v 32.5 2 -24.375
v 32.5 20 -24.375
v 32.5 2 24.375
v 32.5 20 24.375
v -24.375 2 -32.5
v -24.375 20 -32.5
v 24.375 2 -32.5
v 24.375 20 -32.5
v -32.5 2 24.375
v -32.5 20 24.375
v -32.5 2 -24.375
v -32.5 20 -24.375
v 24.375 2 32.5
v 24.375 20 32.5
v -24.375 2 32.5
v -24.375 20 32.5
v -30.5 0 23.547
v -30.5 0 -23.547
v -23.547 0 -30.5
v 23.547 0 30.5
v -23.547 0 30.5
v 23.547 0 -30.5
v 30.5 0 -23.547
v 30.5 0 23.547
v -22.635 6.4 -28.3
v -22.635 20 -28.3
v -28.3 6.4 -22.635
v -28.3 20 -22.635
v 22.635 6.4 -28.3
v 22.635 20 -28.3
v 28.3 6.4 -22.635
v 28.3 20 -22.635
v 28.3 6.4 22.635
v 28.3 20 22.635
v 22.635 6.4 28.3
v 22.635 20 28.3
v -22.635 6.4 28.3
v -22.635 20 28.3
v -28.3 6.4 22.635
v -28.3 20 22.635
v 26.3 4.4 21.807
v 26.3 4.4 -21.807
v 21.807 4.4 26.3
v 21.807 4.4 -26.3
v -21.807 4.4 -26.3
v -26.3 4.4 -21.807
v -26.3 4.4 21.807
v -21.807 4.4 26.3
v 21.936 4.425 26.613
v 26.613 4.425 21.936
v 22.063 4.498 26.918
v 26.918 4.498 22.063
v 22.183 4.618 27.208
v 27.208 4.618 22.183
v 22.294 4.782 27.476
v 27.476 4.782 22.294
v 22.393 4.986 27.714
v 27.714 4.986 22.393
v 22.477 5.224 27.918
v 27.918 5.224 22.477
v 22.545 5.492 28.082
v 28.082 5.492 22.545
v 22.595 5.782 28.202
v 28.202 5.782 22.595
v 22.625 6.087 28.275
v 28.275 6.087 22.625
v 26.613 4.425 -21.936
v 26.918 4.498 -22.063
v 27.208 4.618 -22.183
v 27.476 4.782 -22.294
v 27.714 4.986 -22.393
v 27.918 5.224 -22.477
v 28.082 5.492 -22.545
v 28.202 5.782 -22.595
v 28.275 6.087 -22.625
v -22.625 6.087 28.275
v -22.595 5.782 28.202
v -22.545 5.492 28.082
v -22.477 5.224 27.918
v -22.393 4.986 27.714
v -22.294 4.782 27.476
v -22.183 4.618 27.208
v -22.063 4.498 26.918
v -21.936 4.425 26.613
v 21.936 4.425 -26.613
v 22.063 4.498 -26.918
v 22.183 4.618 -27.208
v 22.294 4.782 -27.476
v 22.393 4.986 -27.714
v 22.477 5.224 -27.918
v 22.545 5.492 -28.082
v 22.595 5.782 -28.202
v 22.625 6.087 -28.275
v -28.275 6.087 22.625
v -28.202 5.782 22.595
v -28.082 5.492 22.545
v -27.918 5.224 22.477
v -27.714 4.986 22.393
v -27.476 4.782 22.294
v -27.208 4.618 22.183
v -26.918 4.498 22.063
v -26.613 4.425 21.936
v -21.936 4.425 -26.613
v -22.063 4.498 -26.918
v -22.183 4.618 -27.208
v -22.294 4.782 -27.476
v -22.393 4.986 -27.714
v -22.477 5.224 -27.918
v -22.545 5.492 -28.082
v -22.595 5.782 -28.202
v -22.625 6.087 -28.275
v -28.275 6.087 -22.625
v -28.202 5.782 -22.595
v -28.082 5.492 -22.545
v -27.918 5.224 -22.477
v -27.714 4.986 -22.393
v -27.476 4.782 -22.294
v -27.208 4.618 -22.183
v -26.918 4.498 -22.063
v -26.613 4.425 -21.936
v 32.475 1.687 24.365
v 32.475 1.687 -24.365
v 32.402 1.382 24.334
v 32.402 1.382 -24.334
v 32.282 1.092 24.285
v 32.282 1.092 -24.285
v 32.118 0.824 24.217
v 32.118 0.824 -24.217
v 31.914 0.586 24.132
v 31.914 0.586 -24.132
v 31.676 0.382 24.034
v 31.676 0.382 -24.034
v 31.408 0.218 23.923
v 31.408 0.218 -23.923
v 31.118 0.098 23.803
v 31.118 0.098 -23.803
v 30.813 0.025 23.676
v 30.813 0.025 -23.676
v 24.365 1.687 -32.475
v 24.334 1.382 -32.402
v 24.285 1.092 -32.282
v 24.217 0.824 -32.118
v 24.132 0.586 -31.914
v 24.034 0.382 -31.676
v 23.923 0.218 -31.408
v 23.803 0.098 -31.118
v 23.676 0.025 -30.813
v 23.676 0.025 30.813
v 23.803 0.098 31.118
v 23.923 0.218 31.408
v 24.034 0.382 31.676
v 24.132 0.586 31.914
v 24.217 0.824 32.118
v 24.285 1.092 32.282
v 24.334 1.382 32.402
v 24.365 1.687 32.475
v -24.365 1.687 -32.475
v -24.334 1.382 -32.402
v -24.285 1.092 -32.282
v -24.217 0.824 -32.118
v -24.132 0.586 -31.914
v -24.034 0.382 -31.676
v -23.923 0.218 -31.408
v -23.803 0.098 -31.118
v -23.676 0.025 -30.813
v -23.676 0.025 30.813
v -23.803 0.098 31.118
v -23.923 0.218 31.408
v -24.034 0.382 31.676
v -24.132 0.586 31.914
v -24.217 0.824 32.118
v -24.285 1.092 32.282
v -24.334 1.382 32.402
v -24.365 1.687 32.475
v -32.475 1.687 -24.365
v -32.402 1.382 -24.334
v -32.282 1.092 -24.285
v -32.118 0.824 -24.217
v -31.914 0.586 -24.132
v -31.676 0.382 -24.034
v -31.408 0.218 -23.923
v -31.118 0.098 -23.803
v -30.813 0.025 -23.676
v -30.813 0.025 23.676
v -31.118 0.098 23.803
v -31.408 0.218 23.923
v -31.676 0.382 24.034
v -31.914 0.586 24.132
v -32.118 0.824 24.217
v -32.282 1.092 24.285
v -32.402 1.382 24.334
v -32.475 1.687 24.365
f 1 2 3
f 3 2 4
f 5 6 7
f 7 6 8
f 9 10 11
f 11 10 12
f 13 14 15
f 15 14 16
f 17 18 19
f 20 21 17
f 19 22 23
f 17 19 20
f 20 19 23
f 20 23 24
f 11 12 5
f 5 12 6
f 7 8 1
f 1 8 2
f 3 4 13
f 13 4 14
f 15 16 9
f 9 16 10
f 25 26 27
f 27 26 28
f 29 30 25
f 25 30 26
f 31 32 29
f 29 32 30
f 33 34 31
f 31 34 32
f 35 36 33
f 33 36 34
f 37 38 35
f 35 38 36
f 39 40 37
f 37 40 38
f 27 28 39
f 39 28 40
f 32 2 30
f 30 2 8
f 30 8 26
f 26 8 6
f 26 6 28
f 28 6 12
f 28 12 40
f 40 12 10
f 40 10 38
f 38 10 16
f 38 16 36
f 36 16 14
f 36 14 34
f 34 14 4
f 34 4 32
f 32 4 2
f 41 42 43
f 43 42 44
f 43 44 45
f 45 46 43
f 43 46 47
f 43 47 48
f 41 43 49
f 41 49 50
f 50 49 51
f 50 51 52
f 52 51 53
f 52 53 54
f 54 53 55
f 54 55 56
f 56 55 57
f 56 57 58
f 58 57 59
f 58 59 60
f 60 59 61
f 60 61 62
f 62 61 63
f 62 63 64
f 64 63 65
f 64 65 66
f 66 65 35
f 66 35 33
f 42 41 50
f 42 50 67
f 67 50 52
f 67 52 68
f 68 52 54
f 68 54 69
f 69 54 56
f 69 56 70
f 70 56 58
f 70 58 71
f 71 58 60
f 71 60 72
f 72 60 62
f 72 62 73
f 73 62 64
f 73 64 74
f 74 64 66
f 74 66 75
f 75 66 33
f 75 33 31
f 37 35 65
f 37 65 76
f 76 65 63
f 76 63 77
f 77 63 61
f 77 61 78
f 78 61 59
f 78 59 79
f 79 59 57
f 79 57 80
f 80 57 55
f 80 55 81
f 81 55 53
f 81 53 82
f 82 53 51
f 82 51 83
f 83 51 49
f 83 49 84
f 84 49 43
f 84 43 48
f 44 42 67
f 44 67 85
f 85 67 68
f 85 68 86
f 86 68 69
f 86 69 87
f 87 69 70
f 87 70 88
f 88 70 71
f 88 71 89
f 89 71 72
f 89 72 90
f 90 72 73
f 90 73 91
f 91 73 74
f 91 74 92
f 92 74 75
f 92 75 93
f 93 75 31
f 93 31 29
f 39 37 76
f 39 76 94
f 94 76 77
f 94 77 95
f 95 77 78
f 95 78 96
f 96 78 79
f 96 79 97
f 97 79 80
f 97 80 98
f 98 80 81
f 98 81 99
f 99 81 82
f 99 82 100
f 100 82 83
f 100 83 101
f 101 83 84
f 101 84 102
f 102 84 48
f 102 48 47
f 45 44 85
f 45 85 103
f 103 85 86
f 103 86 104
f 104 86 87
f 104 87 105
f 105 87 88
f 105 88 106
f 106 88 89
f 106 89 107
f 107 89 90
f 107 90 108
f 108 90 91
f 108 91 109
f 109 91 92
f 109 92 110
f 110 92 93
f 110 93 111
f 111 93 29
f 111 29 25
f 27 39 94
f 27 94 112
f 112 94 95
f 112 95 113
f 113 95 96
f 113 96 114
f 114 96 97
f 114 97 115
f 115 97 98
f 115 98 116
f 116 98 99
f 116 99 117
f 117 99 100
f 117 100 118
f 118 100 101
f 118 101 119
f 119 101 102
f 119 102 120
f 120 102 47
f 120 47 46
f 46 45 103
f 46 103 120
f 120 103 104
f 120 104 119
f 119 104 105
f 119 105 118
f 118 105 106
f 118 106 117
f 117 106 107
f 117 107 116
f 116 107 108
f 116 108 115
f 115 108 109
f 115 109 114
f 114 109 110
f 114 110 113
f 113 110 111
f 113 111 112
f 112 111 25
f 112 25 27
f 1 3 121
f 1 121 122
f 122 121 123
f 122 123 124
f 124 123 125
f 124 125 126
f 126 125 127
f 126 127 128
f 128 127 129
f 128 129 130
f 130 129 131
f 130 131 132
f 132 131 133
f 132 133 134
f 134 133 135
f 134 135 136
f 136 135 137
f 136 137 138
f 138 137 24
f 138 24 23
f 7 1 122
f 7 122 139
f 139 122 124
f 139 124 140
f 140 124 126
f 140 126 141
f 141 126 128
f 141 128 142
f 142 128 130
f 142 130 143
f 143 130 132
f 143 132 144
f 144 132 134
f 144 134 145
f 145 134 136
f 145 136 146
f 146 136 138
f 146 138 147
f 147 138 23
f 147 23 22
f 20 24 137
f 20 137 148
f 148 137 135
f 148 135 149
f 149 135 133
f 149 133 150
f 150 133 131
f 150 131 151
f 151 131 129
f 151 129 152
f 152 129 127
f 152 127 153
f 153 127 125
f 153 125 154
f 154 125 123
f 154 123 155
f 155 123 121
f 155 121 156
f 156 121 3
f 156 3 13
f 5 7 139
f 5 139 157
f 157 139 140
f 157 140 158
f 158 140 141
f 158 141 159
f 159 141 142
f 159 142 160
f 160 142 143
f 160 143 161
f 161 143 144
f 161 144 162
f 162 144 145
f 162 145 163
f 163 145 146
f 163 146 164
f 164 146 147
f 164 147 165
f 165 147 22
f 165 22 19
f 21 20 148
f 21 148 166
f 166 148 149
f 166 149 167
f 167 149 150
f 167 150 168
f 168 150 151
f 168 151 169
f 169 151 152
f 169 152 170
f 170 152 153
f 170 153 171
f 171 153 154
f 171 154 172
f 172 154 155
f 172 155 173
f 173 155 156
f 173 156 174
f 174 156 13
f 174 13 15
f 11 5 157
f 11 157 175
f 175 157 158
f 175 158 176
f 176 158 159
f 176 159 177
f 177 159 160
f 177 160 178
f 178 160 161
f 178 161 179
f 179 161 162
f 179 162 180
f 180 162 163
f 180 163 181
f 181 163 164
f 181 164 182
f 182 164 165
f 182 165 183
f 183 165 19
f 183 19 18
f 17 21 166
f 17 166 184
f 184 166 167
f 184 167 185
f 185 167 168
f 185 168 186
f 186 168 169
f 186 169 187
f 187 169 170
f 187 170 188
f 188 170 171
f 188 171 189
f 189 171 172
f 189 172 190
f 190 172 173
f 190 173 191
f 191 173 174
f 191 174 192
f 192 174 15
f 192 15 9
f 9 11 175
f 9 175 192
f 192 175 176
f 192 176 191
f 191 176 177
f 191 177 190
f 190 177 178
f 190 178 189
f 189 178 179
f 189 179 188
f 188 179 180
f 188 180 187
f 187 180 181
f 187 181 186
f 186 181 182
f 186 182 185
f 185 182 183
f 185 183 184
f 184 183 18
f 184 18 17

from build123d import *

# Parameters (mm, degrees)
SKETCH1_W      = 65
SKETCH1_H      = 65
EXTRUDE1_DEPTH = 4.4
CHAMFER1_SIZE  = 8.125
EXTRUDE2_DEPTH = 15.6
FILLET1_R      = 2


with BuildPart() as part:
    # Sketch1 → Extrude1 (new body)
    with BuildSketch(Plane(origin=(0, 0, 0), x_dir=(1, 0, 0), z_dir=(0, 1, 0))):
        Rectangle(SKETCH1_W, SKETCH1_H)
    extrude(amount=EXTRUDE1_DEPTH)

    # Chamfer1
    chamfer1_edges = [part.edges().sort_by_distance(p)[0] for p in [
        (32.5, 2.2, 32.5),
        (-32.5, 2.2, 32.5),
        (-32.5, 2.2, -32.5),
        (32.5, 2.2, -32.5),
    ]]
    chamfer(chamfer1_edges, length=CHAMFER1_SIZE)

    # Sketch2 → Extrude2 (add)
    with BuildSketch(Plane(origin=(0, 4.4, 0), x_dir=(1, 0, 0), z_dir=(0, 1, 0))):
        Polygon((32.5, 24.375), (24.375, 32.5), (-24.375, 32.5), (-32.5, 24.375), (-32.5, -24.375), (-24.375, -32.5), (24.375, -32.5), (32.5, -24.375), align=None)
        Polygon((-22.635303038, 28.3), (-28.3, 22.635303038), (-28.3, -22.635303038), (-22.635303038, -28.3), (15.182932057, -28.3), (22.635303038, -28.3), (28.3, -22.635303038), (28.3, 22.635303038), (22.635303038, 28.3), align=None, mode=Mode.SUBTRACT)
    extrude(amount=EXTRUDE2_DEPTH)

    # Fillet1
    fillet1_edges = [part.edges().sort_by_distance(p)[0] for p in [
        (-32.5, 0, 0),
        (32.5, 0, 0),
        (0, 0, 32.5),
        (0, 0, -32.5),
        (-28.4375, 0, 28.4375),
        (28.4375, 0, 28.4375),
        (28.4375, 0, -28.4375),
        (-28.4375, 0, -28.4375),
        (-25.467651519, 4.4, -25.467651519),
        (-28.3, 4.4, 0),
        (-25.467651519, 4.4, 25.467651519),
        (0, 4.4, 28.3),
        (25.467651519, 4.4, 25.467651519),
        (28.3, 4.4, 0),
        (25.467651519, 4.4, -25.467651519),
        (0, 4.4, -28.3),
    ]]
    fillet(fillet1_edges, radius=FILLET1_R)


solid = part.part
